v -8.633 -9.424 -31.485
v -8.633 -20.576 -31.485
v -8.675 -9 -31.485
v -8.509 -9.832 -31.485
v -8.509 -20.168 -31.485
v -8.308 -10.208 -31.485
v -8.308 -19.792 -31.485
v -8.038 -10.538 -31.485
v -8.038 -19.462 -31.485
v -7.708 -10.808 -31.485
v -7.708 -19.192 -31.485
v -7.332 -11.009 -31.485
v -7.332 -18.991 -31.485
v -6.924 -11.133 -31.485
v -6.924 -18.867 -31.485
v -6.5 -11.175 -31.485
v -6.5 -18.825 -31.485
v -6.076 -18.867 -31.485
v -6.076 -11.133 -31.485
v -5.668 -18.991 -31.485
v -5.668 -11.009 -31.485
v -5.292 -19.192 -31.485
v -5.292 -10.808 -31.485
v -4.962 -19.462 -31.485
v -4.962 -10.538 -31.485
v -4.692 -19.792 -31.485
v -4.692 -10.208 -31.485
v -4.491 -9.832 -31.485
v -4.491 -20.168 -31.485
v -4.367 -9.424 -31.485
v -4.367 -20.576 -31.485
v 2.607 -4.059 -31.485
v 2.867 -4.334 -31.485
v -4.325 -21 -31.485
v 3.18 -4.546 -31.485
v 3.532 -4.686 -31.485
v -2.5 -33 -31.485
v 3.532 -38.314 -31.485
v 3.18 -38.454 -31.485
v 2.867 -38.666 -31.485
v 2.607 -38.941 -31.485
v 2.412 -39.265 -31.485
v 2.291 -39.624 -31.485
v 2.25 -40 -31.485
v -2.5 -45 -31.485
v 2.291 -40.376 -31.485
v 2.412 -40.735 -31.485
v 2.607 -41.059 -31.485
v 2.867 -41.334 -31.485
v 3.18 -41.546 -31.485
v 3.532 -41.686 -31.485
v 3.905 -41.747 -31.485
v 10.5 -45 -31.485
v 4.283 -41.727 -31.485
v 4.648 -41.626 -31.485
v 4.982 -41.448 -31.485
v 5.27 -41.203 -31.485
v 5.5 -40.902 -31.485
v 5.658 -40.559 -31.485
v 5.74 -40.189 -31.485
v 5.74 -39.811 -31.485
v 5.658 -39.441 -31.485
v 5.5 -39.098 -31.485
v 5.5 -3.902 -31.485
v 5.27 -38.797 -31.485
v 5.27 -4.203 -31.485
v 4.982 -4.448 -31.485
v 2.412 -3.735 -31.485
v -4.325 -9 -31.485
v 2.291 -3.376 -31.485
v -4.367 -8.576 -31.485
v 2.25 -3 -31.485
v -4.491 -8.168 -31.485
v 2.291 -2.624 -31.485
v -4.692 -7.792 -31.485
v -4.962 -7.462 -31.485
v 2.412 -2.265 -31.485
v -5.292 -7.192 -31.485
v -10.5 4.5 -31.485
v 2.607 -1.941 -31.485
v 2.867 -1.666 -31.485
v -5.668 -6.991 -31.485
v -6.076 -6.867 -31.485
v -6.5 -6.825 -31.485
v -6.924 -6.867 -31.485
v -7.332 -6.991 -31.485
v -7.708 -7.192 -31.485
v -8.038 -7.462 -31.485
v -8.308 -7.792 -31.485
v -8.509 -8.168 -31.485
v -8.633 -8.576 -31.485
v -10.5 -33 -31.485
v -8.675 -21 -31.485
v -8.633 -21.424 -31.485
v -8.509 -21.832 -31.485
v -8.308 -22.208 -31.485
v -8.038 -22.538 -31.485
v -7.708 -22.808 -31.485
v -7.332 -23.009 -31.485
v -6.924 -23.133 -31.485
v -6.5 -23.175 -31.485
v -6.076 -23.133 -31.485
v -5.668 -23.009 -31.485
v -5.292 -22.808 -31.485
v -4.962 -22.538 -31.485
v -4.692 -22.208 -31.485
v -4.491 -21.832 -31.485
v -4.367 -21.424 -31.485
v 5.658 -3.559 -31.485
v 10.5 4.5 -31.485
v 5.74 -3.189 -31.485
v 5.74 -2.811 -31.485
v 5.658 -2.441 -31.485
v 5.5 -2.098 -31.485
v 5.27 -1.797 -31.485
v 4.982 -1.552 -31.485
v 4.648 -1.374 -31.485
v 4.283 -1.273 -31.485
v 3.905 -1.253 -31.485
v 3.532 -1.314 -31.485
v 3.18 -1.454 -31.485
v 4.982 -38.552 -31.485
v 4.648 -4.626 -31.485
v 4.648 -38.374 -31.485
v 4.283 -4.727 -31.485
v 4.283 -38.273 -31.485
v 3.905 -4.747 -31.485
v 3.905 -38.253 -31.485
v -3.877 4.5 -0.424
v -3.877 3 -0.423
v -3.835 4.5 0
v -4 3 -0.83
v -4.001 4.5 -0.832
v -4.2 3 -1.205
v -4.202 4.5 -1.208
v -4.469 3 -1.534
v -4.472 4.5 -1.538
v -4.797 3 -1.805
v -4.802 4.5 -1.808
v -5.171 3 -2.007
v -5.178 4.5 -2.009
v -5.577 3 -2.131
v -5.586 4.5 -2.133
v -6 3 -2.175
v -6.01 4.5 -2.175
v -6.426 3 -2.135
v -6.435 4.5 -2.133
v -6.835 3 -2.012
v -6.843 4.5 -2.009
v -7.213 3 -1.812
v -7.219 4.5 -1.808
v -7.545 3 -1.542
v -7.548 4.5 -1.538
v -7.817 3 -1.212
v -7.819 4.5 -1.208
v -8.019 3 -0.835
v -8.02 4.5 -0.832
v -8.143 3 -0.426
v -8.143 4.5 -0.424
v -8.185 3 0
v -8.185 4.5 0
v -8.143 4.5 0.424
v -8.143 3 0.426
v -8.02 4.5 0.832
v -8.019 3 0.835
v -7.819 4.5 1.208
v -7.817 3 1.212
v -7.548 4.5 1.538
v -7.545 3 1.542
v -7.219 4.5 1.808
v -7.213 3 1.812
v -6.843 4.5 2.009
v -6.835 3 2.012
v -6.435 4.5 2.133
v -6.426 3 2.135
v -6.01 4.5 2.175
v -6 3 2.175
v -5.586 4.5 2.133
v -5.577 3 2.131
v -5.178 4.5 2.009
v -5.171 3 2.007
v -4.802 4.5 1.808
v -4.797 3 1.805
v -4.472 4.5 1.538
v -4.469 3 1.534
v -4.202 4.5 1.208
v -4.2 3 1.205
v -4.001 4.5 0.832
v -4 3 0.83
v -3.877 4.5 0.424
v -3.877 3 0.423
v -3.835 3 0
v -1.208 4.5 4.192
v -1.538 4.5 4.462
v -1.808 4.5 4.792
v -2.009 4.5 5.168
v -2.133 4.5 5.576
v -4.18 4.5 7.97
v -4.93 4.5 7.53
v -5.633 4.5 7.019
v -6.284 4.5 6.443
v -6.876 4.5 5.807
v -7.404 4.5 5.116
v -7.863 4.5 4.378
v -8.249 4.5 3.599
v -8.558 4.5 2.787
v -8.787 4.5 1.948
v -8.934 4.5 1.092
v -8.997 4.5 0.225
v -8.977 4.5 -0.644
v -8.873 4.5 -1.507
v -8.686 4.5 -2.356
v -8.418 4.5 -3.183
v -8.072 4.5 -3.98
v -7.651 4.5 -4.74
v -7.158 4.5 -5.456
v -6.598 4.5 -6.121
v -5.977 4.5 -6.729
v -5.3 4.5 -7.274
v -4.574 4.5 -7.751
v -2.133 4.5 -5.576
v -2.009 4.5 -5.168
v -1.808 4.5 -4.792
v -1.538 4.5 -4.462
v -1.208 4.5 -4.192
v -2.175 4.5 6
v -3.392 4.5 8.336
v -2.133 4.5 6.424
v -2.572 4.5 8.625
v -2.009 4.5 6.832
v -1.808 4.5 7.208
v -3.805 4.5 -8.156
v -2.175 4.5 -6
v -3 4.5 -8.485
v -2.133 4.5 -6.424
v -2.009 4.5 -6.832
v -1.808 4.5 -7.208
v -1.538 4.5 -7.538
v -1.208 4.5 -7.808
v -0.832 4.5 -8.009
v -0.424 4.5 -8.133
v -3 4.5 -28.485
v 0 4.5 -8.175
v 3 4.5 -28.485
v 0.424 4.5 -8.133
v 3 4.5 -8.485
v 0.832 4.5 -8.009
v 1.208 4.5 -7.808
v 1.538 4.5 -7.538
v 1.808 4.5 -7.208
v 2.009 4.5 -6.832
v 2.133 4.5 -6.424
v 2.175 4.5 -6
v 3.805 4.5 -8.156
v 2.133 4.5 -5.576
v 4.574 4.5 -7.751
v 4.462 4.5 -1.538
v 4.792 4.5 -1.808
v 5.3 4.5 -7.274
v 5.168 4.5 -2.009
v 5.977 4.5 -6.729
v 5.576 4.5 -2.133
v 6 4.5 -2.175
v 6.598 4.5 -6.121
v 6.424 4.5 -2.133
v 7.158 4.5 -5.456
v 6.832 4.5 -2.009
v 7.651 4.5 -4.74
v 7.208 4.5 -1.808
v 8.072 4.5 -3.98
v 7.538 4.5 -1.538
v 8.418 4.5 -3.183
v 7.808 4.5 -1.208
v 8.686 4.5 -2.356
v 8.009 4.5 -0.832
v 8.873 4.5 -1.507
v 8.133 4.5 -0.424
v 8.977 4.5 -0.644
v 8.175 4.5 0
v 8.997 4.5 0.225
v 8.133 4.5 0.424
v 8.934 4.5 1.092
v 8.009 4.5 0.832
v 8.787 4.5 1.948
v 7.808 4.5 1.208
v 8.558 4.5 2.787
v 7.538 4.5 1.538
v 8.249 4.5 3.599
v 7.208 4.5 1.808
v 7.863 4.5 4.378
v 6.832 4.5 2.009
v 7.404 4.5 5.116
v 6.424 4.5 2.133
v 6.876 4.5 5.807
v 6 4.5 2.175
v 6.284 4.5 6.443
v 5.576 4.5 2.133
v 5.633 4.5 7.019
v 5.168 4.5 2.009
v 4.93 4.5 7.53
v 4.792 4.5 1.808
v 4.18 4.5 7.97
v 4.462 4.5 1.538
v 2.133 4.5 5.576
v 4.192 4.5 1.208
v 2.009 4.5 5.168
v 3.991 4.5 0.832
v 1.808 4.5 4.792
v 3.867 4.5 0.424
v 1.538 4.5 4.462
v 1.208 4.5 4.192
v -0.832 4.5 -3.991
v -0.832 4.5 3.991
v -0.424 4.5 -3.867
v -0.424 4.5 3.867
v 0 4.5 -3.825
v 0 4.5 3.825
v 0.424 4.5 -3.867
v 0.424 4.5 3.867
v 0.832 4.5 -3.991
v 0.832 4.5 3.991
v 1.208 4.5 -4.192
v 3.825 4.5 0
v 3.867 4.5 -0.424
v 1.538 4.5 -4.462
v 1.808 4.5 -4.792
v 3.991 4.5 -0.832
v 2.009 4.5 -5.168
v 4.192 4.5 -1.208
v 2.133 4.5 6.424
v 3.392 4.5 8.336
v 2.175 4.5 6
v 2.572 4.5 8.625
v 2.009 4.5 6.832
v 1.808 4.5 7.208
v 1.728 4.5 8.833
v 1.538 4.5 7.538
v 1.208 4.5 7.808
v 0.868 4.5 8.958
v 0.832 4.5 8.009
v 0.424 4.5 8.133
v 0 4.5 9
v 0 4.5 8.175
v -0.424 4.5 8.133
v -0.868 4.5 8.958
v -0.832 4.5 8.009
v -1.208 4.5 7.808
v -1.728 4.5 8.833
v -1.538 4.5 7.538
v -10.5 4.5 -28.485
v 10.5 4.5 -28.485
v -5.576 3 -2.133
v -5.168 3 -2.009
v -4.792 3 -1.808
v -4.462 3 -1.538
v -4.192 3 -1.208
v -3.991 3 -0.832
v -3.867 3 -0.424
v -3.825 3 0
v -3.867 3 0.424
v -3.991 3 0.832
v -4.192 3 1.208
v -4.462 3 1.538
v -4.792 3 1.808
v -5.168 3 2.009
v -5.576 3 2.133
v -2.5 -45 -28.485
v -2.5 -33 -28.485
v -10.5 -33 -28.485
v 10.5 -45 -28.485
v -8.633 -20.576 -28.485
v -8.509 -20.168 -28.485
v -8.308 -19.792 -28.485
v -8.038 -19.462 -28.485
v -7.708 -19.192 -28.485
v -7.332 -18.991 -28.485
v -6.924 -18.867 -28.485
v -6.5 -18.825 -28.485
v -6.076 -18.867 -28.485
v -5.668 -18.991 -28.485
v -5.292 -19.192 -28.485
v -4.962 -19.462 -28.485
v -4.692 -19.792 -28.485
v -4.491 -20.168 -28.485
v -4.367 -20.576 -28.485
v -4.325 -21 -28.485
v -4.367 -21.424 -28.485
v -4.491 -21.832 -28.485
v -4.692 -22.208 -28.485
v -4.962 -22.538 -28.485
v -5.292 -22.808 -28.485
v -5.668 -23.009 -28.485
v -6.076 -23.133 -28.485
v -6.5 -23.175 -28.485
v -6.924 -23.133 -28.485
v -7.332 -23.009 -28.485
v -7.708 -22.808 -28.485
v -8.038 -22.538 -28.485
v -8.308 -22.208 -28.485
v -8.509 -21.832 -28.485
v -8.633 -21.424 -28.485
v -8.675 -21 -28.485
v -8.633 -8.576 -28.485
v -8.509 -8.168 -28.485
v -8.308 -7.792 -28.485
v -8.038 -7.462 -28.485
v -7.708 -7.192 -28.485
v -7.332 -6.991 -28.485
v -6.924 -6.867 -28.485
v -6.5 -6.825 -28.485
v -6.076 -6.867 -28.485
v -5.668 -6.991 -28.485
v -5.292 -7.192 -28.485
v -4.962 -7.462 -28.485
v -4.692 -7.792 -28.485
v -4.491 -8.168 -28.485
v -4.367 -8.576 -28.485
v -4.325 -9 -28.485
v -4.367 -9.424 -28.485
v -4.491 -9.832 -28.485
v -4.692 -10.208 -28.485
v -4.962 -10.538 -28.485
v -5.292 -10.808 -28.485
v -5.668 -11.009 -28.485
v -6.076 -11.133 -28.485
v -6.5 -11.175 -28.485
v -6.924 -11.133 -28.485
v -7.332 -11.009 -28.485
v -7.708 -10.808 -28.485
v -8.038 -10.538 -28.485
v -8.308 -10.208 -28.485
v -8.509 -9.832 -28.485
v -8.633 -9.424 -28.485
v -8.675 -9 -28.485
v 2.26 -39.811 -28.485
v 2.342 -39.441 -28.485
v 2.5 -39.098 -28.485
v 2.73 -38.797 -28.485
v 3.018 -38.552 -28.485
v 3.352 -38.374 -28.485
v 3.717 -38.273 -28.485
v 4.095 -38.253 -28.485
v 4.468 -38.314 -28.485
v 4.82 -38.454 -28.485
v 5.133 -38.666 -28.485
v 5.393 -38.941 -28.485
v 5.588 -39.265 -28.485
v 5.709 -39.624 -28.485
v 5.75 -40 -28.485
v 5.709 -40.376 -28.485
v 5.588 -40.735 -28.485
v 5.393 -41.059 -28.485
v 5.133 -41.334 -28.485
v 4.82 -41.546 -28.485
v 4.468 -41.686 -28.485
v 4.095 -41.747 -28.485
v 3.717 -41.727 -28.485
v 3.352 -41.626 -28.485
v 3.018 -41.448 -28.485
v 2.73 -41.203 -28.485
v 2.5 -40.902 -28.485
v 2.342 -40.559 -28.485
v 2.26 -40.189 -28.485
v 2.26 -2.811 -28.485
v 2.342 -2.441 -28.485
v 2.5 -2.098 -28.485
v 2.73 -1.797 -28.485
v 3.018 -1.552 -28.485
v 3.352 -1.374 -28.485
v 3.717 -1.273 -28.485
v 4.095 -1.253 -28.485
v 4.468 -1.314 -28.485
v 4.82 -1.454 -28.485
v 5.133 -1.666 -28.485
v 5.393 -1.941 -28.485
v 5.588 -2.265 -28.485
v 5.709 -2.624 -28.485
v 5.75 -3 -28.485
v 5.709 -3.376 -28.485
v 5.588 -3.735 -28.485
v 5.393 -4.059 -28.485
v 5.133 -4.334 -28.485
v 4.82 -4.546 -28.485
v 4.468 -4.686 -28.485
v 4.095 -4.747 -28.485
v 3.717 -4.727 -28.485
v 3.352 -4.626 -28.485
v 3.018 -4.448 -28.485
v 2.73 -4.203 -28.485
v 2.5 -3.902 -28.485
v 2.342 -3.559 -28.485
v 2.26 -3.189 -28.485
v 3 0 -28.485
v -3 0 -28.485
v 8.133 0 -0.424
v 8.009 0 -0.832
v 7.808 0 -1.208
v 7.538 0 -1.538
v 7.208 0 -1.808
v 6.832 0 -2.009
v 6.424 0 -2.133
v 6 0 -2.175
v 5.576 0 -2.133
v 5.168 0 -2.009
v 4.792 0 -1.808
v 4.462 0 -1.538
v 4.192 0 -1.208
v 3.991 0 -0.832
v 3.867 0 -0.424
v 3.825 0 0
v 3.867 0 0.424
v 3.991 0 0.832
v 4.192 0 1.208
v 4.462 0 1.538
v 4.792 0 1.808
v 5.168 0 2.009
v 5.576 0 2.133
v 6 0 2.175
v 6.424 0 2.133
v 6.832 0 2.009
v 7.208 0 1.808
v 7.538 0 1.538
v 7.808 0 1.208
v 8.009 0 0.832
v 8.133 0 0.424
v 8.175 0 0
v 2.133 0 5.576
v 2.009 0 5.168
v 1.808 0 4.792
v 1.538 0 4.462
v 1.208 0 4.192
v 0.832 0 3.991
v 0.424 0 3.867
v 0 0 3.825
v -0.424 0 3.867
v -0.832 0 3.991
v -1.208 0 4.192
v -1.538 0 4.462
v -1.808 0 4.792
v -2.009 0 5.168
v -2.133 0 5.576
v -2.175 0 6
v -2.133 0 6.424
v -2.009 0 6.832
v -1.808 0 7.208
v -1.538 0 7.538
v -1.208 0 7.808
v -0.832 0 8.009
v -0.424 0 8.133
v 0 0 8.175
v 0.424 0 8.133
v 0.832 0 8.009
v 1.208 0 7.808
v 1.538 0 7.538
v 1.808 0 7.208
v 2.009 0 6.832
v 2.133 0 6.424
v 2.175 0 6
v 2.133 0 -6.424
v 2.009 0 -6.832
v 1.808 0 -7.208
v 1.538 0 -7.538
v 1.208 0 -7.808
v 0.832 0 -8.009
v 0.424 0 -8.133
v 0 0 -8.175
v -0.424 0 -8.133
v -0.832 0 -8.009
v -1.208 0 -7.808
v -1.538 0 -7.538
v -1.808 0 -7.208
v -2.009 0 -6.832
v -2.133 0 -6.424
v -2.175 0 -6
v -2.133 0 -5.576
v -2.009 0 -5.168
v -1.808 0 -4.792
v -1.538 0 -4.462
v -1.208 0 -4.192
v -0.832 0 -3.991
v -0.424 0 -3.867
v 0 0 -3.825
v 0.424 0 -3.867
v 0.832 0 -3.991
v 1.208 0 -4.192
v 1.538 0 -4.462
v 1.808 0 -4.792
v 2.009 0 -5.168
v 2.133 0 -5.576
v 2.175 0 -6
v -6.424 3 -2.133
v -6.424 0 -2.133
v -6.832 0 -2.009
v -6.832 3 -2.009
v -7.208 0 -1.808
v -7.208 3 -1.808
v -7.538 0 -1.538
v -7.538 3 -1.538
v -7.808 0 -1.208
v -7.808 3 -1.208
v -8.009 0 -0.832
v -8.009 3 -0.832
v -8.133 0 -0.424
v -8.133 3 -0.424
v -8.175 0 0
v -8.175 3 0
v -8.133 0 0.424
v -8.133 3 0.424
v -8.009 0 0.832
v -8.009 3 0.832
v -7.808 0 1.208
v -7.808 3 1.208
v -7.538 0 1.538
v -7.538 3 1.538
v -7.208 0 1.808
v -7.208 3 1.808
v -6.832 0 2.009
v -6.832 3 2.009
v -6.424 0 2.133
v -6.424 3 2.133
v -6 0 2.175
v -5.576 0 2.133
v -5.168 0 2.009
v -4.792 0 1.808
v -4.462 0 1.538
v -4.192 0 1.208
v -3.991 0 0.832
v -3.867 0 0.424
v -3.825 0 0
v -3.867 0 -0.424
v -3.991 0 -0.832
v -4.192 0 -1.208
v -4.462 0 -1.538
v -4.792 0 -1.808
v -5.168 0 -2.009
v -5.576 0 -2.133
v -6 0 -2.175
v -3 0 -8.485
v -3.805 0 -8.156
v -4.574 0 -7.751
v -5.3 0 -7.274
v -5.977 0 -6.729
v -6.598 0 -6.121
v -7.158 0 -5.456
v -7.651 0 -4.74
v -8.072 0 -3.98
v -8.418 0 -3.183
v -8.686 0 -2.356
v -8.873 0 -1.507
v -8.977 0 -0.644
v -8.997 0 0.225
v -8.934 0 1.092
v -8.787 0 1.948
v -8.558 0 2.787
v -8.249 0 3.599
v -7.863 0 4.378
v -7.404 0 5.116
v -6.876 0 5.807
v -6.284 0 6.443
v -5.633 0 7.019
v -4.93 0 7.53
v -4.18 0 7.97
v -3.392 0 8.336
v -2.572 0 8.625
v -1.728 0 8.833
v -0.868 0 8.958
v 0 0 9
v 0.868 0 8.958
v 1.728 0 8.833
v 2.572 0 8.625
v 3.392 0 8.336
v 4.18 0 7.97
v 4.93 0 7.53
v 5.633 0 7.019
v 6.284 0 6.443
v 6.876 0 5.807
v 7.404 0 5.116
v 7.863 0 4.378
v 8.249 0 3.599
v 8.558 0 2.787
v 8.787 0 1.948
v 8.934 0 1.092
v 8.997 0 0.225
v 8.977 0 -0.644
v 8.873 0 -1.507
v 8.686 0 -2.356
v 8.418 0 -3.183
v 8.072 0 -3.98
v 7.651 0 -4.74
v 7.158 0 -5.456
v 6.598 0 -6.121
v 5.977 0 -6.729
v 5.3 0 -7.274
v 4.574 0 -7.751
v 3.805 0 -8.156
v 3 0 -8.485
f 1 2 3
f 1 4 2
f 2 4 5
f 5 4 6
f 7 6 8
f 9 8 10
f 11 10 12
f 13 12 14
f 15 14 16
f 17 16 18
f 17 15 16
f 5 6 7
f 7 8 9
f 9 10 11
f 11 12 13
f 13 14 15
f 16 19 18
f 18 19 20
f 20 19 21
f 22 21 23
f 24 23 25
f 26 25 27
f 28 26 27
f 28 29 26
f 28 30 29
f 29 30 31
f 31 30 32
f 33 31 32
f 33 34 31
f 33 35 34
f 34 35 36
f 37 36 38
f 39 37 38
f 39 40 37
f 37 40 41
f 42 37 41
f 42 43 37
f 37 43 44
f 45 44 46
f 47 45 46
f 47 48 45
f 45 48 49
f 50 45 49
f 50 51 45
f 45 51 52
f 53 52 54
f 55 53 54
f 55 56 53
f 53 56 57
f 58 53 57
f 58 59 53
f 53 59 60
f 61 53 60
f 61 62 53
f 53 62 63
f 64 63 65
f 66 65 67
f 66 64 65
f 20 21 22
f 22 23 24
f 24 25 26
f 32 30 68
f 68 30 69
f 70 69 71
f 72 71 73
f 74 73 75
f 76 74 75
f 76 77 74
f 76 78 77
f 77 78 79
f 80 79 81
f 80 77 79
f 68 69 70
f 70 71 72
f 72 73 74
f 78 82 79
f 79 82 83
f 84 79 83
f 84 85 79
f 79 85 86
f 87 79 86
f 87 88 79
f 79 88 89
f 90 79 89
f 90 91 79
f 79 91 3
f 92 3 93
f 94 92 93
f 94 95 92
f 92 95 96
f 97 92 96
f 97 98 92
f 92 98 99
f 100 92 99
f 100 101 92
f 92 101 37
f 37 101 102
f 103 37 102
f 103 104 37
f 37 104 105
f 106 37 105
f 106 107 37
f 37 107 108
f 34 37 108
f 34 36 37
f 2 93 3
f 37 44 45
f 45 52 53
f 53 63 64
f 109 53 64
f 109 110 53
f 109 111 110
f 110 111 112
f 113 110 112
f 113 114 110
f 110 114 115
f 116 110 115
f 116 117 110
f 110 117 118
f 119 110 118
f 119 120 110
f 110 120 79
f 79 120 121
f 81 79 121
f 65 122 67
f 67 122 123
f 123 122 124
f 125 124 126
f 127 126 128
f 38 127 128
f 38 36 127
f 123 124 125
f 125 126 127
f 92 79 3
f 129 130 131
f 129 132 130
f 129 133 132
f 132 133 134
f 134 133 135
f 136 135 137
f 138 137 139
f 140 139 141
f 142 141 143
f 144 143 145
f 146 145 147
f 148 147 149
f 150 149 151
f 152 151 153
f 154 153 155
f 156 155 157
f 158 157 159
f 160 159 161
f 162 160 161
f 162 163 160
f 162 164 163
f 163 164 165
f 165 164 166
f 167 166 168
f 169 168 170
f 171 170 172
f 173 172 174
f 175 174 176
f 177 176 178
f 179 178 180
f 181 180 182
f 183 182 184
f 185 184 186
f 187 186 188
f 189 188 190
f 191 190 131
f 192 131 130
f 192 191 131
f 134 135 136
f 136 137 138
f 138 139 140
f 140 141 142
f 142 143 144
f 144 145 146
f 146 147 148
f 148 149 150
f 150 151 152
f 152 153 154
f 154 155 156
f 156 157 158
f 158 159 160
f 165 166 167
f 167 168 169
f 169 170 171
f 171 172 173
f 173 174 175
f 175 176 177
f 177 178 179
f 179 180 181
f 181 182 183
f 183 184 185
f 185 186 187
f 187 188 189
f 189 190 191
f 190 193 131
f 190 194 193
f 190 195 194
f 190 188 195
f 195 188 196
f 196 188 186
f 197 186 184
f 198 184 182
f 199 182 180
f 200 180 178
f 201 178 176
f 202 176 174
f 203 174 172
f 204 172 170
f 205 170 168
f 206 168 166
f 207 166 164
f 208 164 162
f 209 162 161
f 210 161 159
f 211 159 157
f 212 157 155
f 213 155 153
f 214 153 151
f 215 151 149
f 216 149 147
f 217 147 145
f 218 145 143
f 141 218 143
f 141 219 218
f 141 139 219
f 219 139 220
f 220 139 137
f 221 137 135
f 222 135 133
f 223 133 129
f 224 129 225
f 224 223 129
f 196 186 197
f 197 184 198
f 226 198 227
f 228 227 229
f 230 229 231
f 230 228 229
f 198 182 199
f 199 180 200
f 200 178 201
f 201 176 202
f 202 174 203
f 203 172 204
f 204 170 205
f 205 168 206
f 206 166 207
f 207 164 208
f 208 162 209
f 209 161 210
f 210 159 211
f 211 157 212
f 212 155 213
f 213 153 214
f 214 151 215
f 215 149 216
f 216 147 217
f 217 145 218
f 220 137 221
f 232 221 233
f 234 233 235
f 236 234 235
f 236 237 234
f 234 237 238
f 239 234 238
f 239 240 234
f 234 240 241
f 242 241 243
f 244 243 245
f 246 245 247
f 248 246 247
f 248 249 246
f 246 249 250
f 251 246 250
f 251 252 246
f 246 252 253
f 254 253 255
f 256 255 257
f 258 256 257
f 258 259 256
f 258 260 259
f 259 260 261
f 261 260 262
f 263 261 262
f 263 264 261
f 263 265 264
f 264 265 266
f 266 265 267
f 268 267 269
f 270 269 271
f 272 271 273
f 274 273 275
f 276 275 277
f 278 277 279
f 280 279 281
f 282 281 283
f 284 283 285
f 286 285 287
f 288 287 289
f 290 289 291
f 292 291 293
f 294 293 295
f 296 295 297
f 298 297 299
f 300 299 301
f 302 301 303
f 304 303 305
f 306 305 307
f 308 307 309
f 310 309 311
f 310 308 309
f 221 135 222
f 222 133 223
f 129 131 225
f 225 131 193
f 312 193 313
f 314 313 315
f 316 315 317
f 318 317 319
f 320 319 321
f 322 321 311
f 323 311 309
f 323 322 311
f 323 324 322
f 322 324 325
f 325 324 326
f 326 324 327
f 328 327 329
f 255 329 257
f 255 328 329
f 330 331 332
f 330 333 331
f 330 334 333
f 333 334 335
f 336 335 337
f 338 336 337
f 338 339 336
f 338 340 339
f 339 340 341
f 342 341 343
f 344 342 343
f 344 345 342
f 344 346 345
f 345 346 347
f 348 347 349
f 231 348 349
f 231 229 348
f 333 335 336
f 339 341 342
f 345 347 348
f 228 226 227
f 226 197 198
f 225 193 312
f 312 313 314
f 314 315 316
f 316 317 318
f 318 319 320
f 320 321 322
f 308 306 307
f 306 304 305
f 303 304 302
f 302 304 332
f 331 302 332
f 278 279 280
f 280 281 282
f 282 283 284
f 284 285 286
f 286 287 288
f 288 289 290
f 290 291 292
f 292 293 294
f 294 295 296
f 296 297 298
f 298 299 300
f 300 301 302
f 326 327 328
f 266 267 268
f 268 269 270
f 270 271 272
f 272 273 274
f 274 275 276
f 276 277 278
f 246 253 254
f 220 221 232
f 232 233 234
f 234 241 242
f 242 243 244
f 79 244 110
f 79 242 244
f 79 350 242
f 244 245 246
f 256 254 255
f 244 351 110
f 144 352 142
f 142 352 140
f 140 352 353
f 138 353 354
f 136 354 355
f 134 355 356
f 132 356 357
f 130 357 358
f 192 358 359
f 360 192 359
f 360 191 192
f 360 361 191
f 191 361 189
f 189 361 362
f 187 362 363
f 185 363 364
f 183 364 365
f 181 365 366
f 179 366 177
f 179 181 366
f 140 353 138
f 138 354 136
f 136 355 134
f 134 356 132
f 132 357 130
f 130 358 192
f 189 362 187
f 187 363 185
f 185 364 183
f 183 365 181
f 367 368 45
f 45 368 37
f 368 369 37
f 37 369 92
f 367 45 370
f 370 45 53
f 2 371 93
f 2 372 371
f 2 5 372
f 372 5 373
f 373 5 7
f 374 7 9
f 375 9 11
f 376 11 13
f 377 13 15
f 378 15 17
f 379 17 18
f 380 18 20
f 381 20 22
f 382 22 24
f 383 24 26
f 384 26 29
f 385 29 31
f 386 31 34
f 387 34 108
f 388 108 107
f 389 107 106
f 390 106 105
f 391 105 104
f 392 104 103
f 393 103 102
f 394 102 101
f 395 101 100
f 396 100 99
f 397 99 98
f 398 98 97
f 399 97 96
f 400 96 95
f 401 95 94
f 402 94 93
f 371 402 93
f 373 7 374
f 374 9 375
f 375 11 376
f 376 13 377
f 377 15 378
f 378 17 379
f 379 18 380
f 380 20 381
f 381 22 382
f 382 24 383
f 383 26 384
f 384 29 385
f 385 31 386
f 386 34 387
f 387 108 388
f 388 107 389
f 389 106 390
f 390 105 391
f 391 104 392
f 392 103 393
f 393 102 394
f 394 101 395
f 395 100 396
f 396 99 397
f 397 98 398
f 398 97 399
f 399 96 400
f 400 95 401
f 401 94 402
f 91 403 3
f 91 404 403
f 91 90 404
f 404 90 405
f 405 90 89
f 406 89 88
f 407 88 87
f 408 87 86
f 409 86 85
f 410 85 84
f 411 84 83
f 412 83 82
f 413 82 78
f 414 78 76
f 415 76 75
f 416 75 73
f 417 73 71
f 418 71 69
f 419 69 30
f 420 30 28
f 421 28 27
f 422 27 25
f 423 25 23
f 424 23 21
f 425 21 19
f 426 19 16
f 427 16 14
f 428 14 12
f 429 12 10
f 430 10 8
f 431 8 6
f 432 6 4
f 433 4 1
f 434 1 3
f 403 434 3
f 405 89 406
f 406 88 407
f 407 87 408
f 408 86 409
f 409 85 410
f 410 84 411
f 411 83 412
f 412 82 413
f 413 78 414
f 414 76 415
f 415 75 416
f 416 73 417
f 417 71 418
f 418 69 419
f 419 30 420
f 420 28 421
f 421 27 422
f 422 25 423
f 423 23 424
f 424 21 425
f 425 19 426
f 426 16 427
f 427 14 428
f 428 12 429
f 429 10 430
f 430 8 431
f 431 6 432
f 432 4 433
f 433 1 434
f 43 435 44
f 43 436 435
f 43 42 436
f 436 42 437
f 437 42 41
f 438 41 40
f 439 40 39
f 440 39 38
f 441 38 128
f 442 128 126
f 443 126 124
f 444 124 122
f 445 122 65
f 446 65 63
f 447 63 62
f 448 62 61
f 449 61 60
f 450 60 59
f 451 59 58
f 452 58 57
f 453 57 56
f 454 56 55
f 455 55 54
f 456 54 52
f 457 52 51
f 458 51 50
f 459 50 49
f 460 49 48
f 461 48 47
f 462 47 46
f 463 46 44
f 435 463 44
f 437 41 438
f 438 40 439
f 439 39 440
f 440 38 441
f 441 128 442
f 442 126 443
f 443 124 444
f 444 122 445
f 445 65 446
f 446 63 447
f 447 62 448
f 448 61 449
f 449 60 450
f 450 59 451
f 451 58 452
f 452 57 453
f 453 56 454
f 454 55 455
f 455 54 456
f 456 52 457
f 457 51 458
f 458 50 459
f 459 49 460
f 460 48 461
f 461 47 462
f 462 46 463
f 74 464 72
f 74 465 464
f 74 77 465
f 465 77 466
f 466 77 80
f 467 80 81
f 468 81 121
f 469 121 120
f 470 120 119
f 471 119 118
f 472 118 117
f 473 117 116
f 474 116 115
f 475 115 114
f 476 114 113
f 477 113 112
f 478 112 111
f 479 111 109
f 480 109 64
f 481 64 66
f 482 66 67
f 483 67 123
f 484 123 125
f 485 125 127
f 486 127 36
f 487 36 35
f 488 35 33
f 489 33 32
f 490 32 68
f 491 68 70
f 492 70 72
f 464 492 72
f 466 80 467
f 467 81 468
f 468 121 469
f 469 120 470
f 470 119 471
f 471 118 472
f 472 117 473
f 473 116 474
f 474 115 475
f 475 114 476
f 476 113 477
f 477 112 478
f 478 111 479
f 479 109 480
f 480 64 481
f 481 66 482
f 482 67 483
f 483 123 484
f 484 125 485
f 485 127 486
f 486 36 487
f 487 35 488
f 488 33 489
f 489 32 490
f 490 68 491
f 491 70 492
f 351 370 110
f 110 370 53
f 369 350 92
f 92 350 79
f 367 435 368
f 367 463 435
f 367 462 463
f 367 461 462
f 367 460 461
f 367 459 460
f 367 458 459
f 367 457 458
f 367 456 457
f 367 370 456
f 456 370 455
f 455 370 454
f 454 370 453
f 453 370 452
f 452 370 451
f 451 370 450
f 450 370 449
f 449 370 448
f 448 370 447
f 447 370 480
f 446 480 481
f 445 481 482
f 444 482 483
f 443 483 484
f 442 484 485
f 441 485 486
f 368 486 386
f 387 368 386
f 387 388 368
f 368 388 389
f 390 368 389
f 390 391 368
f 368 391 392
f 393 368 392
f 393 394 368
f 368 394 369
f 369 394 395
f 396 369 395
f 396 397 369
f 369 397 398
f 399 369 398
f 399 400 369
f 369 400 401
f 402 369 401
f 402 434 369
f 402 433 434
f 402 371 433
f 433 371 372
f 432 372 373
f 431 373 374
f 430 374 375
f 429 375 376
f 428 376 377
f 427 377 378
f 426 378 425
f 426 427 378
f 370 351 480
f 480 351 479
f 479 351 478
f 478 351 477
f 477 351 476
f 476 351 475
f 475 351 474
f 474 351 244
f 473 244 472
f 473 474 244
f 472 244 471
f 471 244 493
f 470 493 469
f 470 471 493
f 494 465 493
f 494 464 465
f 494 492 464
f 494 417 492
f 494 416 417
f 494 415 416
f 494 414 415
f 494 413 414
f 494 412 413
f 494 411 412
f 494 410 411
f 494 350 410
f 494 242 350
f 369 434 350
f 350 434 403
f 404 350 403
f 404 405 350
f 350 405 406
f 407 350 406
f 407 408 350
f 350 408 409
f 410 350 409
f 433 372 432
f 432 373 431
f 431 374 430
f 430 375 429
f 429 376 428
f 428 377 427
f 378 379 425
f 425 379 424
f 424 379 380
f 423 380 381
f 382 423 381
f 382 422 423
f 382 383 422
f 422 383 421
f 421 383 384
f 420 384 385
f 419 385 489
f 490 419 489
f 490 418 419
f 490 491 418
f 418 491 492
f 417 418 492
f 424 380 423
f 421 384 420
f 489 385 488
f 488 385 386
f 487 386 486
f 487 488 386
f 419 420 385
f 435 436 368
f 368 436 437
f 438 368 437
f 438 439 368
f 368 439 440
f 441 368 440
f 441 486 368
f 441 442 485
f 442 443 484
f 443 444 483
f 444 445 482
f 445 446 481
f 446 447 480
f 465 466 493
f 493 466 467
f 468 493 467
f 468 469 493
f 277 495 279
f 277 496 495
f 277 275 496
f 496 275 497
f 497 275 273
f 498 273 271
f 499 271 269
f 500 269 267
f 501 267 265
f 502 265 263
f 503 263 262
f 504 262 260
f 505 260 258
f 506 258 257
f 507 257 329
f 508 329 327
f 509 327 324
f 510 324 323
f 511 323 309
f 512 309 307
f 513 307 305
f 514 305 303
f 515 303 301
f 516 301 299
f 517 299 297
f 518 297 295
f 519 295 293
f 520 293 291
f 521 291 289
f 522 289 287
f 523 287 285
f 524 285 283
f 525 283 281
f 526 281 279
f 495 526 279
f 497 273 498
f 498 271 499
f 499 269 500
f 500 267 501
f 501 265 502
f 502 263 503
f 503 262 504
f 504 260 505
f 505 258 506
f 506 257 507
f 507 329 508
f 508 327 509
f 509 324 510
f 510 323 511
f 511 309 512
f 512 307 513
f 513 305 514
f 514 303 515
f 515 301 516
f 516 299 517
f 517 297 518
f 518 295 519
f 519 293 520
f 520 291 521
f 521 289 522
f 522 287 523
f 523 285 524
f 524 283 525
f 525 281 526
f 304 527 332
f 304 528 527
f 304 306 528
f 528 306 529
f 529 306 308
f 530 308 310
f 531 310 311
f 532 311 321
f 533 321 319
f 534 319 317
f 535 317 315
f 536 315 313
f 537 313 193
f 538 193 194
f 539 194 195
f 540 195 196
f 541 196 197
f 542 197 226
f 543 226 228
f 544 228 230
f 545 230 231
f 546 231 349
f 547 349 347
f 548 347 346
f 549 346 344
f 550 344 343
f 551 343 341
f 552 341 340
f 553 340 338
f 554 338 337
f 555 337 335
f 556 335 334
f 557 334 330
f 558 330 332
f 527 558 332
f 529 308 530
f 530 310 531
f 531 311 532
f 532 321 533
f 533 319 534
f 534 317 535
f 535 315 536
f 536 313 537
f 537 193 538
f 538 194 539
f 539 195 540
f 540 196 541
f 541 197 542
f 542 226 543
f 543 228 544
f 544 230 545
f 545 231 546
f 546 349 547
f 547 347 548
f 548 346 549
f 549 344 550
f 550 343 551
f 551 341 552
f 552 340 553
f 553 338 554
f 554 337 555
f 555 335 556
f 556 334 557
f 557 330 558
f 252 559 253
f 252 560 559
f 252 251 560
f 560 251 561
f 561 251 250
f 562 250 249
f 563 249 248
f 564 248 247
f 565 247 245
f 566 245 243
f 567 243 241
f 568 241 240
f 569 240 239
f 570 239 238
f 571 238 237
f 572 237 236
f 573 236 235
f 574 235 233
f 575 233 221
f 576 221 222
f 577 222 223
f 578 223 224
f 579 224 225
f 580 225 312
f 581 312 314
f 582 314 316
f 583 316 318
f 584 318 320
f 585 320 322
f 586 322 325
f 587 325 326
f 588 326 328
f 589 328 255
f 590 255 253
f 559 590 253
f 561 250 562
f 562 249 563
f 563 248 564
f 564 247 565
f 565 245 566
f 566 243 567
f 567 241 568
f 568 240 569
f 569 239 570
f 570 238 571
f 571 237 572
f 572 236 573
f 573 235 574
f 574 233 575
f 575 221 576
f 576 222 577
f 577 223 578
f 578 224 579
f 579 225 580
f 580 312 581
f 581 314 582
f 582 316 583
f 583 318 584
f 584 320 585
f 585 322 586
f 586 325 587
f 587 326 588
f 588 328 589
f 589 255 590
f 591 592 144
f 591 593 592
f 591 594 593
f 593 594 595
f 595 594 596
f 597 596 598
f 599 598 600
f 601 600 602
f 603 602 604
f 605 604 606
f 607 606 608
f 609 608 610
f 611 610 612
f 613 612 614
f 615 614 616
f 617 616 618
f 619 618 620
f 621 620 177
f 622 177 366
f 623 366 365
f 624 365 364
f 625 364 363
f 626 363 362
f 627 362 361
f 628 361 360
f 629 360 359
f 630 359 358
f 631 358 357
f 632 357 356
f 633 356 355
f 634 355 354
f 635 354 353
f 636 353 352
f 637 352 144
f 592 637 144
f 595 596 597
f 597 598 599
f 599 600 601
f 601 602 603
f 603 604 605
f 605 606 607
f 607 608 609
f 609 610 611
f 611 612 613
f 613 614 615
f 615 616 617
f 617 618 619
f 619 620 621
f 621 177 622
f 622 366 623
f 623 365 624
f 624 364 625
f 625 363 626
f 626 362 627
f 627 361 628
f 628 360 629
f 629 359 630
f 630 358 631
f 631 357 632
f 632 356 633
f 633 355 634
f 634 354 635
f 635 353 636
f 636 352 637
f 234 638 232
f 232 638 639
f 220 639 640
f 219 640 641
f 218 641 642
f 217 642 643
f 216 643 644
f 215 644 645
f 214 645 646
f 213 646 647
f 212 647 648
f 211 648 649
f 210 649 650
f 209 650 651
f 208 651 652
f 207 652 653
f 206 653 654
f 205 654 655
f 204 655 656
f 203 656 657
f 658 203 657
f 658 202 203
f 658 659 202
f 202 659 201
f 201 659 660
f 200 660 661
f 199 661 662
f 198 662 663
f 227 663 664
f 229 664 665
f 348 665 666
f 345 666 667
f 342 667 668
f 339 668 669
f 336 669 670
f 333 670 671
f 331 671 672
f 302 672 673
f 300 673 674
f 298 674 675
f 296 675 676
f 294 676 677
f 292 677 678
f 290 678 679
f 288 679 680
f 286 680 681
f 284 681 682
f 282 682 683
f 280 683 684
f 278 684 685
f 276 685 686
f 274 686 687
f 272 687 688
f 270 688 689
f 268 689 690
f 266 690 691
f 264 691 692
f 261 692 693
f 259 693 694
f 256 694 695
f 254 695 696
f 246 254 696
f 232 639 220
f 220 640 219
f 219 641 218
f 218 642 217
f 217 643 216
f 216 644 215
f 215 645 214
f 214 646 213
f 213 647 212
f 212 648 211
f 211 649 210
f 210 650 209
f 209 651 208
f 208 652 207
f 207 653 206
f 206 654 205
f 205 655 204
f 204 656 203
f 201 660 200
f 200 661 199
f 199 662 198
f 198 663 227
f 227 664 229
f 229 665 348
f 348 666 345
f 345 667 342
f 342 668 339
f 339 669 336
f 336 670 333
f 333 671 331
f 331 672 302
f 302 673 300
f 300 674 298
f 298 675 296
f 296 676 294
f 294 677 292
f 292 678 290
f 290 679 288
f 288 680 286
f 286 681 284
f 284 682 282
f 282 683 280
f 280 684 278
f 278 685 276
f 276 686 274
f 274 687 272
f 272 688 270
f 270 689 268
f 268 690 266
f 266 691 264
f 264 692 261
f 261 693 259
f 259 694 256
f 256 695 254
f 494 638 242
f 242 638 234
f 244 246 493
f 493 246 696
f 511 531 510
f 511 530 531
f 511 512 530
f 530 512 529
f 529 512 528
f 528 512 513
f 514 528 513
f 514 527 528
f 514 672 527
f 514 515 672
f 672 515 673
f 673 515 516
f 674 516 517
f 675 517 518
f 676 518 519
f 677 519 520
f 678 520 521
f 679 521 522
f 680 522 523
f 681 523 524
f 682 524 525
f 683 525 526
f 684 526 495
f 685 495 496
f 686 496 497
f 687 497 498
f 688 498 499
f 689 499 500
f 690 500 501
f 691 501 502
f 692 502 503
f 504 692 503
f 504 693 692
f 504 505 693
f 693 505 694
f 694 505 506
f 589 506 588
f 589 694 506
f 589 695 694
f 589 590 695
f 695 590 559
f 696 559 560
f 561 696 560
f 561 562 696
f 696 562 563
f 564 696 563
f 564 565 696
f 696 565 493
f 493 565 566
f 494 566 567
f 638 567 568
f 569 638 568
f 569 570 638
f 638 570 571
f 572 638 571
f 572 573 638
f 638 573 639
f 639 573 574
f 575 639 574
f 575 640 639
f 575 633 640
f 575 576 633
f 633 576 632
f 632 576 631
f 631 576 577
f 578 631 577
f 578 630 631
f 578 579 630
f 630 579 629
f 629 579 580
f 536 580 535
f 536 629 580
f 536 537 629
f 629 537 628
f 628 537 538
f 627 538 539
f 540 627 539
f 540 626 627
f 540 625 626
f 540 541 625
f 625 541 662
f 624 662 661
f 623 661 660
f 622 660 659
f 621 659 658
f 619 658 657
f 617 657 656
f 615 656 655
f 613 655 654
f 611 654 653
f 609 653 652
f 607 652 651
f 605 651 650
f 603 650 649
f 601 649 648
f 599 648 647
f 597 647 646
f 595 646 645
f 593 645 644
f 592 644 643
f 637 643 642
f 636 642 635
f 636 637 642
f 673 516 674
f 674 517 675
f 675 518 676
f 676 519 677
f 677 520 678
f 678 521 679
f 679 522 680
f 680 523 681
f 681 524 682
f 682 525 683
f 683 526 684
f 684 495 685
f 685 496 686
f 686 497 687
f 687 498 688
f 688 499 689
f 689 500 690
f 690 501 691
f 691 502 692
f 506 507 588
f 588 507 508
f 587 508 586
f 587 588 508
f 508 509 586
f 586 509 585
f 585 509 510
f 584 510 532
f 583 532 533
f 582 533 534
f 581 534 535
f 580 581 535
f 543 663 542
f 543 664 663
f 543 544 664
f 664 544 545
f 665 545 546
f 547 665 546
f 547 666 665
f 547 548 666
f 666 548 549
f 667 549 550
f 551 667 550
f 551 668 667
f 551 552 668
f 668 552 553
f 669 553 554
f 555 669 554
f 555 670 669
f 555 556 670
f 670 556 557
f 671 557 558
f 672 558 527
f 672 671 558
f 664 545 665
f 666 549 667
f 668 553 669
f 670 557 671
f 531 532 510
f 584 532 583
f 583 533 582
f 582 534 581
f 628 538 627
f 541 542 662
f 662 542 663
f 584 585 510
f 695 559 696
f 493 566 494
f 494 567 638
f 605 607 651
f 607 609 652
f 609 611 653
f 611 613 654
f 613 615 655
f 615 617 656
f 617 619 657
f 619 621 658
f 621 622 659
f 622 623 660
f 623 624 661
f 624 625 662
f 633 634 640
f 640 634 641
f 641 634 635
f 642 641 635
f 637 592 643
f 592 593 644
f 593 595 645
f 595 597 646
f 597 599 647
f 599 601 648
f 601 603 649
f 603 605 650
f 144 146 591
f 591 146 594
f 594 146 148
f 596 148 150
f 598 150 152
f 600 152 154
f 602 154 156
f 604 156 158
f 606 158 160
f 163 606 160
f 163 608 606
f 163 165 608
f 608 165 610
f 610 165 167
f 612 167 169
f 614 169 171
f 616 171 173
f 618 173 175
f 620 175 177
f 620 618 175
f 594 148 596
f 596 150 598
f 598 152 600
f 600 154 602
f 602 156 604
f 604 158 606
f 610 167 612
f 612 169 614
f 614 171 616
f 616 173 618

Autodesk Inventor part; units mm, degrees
ref_plane "YZ Plane" through (0, 0, 0) normal (1, 0, 0) x (0, 1, 0)
ref_plane "XZ Plane" through (0, 0, 0) normal (0, 1, 0) x (-1, 0, 0)
ref_plane "XY Plane" through (0, 0, 0) normal (0, 0, 1) x (1, 0, 0)
sketch "Sketch1" plane through (0, 0, 0) normal (0, 1, 0) x (-1, 0, 0)
  arc A0 (3, -8.4853) -> (-3, -8.4853) centre (0, 0) ccw
  circle A1 centre (6, 0) radius 2.175
  circle A2 centre (0, -6) radius 2.175
  circle A3 centre (0, 6) radius 2.175
  circle A4 centre (-6, 0) radius 2.175
  line L0 (-3, -8.4853) -> (-3, -28.4853)
  line L1 (-3, -28.4853) -> (3, -28.4853)
  line L2 (3, -28.4853) -> (3, -8.4853)
  dimension "d0" = 18
  dimension "d1" = 4.35
  dimension "d2" = 6
  dimension "d3" = 4.35
  dimension "d4" = 6
  dimension "d5" = 4.35
  dimension "d6" = 6
  dimension "d7" = 4.35
  dimension "d8" = 6
  dimension "d13" = 6
  dimension "d66" = 20
extrude "Extrusion1" add sketch "Sketch1" along normal blind 3
sketch "Sketch2" plane through (0, 3, 0) normal (0, 1, 0) x (1, 0, 0)
  line L0 (3, 28.4853) -> (-3, 28.4853) projected
  line L1 (-3, 28.4853) -> (3, 28.4853)
  line L2 (3, 28.4853) -> (3, 29.9853)
  line L3 (3, 29.9853) -> (-3, 29.9853)
  line L4 (-3, 29.9853) -> (-3, 28.4853)
  point P0 (0, 0)
  dimension "d14" = 6
  dimension "d15" = 1.5
extrude "Extrusion2" add sketch "Sketch2" against normal blind 48
sketch "Sketch3" plane through (3, 3, -29.9853) normal (0, 0, -1) x (-1, 0, 0)
  line L0 (0, -3) -> (0, -48) projected
  line L1 (0, -48) -> (-3.5, -48)
  line L2 (-3.5, -48) -> (-3.5, 0)
  line L3 (-5.175, 0) -> (-0.825, 0) projected
  line L4 (-3.5, 0) -> (0, 0)
  line L5 (0, 0) -> (0, -48)
  line L6 (0, -48) -> (6, -48) projected
  line L7 (6.825, 0) -> (11.175, 0) projected
  line L8 (6, -48) -> (9.5, -48)
  line L9 (9.5, -48) -> (9.5, 0)
  line L10 (9.5, 0) -> (6, 0)
  line L11 (6, 0) -> (6, -48)
  line L12 (9.5, 0) -> (9.5, -48)
  line L13 (-3.5, -48) -> (-7.5, -48)
  line L14 (-7.5, -48) -> (-7.5, 0)
  line L15 (-7.5, 0) -> (-3.5, 0)
  line L16 (-3.5, 0) -> (-3.5, -48)
  line L17 (9.5, -48) -> (13.5, -48)
  line L18 (13.5, -48) -> (13.5, 0)
  line L19 (13.5, 0) -> (9.5, 0)
  line L20 (9.5, 0) -> (9.5, -48)
  point P0 (3, -3)
  dimension "d18" = 3.5
  dimension "d19" = 3.5
  dimension "d43" = 4
  dimension "d44" = 4
extrude "Extrusion3" add sketch "Sketch3" against normal blind 1.5
sketch "Sketch4" plane through (6.5, -45, -29.9853) normal (0, 0, -1) x (-1, 0, 0)
  circle A0 centre (2.5, 5) radius 1.75
  line L0 (-4, 0) -> (17, 0) projected
  line L1 (17, 0) -> (-4, 0) projected
  circle A1 centre (2.5, 42) radius 1.75
  line L2 (-2.5, 45) -> (15.5, 45) projected
  line L3 (-4, 48) -> (-4, 0) projected
  point P0 (6.5, 45)
  point P1 (0, 0)
  point P2 (21, 0)
  point P3 (0, 48)
  point P4 (3.5, 45)
  point P5 (9.5, 45)
  point P6 (9.5, 0)
  point P7 (3.5, 0)
  point P8 (13, 0)
  dimension "d23" = 3.5
  dimension "d26" = 3.5
  dimension "d28" = 3
  dimension "d45" = 6.5
  dimension "d46" = 6.5
  dimension "d78" = 37
hole "Hole1" at (4, -40, -29.9853) at (4, -3, -29.9853) direction (0, 0, 1) diameter 3.5 depth 8 tip angle 118
sketch "Sketch5" plane through (6.5, -45, -29.9853) normal (0, 0, -1) x (-1, 0, 0)
  line L0 (0.0281, 45) -> (0.0281, 42)
  line L1 (0.0281, 42) -> (0.0281, 30)
  line L2 (0.0281, 30) -> (17, 30)
  line L3 (17, 48) -> (17, 0) projected
  circle A0 centre (13, 36) radius 2.175
  circle A1 centre (13, 24) radius 2.175
  dimension "d36" = 3
  dimension "d47" = 12
  dimension "d48" = 4.35
  dimension "d49" = 6
  dimension "d50" = 4
  dimension "d51" = 4.35
  dimension "d52" = 6
  dimension "d53" = 4
hole "Hole2" at (-6.5, -21, -29.9853) at (-6.5, -9, -29.9853) direction (0, 0, 1) diameter 4.35 depth 8 tip angle 118
sketch "Sketch6" plane through (10.5, -45, -29.9853) normal (0, 0, -1) x (-1, 0, 0)
  line L0 (0, 0) -> (13, 0)
  line L1 (21, 0) -> (0, 0) projected
  line L2 (13.5, 48) -> (21, 48) projected
  line L3 (13, 0) -> (13, 12)
  line L4 (12.675, 45) -> (12.675, 48) projected
  line L5 (17.25, 24) -> (29.25, 24) construction
  line L6 (21, 12) -> (17.25, 12)
  line L7 (21, 48) -> (21, 0) projected
  line L8 (21, 12) -> (21, 0)
  line L9 (21, 0) -> (13, 0)
  line L10 (13, 0) -> (13, 12)
  line L11 (13, 12) -> (21, 12)
  point P0 (10.5, 45)
  dimension "d61" = 13
extrude "Extrusion4" cut sketch "Sketch6" against normal through all
sketch "Sketch7" plane through (0, 3, 0) normal (0, 1, 0) x (1, 0, 0)
  line L0 (10.5, 29.9853) -> (-10.5, 29.9853) projected
  line L1 (-10.5, 29.9853) -> (-10.5, 28.4853) projected
  line L2 (-10.5, 29.9853) -> (-10.5, 28.4853)
  line L3 (-3, 28.4853) -> (-10.5, 28.4853) projected
  line L4 (-10.5, 28.4853) -> (-3, 28.4853)
  line L5 (-3, 8.4853) -> (-3, 28.4853) projected
  line L6 (-3, 28.4853) -> (-3, 8.4853)
  line L7 (10.5, 29.9853) -> (10.5, 28.4853) projected
  line L8 (-10.5, 29.9853) -> (10.5, 29.9853)
  line L9 (10.5, 29.9853) -> (10.5, 28.4853)
  line L10 (3, 28.4853) -> (3, 8.4853) projected
  line L11 (10.5, 28.4853) -> (3, 28.4853)
  line L12 (3, 28.4853) -> (3, 8.4853)
  arc A0 (-3, 8.4853) -> (3, 8.4853) centre (0, 0) ccw
  circle A1 centre (0, 6) radius 2.175
  circle A2 centre (-6.0102, 0) radius 2.175
  circle A3 centre (6, 0) radius 2.175
  circle A4 centre (0, -6) radius 2.175
  dimension "d67" = 4.35
  dimension "d68" = 6
  dimension "d69" = 4.35
  dimension "d70" = 6
  dimension "d71" = 4.35
  dimension "d72" = 6
extrude "Extrusion5" add sketch "Sketch7" along normal blind 1.5
sketch "Sketch8" plane through (10.5, -45, -29.9853) normal (0, 0, -1) x (-1, 0, 0)
  line L0 (13, 0) -> (13, 12) projected
  line L1 (13, -0.1664) -> (13, 12)
  line L2 (13, 12) -> (21, 12) projected
  line L3 (13, 12) -> (21, 12)
  line L4 (0, 49.5) -> (21, 49.5) projected
  line L5 (21, 12) -> (21, 49.5)
  line L6 (21, 49.5) -> (0, 49.5)
  line L7 (0, 0) -> (13, 0) projected
  line L8 (0, 49.5) -> (0, 0)
  line L9 (0, 49.5) -> (0, 0) projected
  line L10 (0, 0) -> (13, 0)
  circle A0 centre (6.5, 42) radius 1.75 projected
  circle A1 centre (6.5, 42) radius 1.75
  circle A2 centre (17, 24) radius 2.175 projected
  circle A3 centre (17, 24) radius 2.175
  circle A4 centre (17, 36) radius 2.175 projected
  circle A5 centre (17, 36) radius 2.175
  circle A6 centre (6.5, 5) radius 1.75 projected
  circle A7 centre (6.5, 5) radius 1.75
  point P0 (10.5, 45)
  dimension "d75" = 3.5
extrude "Extrusion6" add sketch "Sketch8" along normal blind 1.5
properties part number "leverServoMount"
